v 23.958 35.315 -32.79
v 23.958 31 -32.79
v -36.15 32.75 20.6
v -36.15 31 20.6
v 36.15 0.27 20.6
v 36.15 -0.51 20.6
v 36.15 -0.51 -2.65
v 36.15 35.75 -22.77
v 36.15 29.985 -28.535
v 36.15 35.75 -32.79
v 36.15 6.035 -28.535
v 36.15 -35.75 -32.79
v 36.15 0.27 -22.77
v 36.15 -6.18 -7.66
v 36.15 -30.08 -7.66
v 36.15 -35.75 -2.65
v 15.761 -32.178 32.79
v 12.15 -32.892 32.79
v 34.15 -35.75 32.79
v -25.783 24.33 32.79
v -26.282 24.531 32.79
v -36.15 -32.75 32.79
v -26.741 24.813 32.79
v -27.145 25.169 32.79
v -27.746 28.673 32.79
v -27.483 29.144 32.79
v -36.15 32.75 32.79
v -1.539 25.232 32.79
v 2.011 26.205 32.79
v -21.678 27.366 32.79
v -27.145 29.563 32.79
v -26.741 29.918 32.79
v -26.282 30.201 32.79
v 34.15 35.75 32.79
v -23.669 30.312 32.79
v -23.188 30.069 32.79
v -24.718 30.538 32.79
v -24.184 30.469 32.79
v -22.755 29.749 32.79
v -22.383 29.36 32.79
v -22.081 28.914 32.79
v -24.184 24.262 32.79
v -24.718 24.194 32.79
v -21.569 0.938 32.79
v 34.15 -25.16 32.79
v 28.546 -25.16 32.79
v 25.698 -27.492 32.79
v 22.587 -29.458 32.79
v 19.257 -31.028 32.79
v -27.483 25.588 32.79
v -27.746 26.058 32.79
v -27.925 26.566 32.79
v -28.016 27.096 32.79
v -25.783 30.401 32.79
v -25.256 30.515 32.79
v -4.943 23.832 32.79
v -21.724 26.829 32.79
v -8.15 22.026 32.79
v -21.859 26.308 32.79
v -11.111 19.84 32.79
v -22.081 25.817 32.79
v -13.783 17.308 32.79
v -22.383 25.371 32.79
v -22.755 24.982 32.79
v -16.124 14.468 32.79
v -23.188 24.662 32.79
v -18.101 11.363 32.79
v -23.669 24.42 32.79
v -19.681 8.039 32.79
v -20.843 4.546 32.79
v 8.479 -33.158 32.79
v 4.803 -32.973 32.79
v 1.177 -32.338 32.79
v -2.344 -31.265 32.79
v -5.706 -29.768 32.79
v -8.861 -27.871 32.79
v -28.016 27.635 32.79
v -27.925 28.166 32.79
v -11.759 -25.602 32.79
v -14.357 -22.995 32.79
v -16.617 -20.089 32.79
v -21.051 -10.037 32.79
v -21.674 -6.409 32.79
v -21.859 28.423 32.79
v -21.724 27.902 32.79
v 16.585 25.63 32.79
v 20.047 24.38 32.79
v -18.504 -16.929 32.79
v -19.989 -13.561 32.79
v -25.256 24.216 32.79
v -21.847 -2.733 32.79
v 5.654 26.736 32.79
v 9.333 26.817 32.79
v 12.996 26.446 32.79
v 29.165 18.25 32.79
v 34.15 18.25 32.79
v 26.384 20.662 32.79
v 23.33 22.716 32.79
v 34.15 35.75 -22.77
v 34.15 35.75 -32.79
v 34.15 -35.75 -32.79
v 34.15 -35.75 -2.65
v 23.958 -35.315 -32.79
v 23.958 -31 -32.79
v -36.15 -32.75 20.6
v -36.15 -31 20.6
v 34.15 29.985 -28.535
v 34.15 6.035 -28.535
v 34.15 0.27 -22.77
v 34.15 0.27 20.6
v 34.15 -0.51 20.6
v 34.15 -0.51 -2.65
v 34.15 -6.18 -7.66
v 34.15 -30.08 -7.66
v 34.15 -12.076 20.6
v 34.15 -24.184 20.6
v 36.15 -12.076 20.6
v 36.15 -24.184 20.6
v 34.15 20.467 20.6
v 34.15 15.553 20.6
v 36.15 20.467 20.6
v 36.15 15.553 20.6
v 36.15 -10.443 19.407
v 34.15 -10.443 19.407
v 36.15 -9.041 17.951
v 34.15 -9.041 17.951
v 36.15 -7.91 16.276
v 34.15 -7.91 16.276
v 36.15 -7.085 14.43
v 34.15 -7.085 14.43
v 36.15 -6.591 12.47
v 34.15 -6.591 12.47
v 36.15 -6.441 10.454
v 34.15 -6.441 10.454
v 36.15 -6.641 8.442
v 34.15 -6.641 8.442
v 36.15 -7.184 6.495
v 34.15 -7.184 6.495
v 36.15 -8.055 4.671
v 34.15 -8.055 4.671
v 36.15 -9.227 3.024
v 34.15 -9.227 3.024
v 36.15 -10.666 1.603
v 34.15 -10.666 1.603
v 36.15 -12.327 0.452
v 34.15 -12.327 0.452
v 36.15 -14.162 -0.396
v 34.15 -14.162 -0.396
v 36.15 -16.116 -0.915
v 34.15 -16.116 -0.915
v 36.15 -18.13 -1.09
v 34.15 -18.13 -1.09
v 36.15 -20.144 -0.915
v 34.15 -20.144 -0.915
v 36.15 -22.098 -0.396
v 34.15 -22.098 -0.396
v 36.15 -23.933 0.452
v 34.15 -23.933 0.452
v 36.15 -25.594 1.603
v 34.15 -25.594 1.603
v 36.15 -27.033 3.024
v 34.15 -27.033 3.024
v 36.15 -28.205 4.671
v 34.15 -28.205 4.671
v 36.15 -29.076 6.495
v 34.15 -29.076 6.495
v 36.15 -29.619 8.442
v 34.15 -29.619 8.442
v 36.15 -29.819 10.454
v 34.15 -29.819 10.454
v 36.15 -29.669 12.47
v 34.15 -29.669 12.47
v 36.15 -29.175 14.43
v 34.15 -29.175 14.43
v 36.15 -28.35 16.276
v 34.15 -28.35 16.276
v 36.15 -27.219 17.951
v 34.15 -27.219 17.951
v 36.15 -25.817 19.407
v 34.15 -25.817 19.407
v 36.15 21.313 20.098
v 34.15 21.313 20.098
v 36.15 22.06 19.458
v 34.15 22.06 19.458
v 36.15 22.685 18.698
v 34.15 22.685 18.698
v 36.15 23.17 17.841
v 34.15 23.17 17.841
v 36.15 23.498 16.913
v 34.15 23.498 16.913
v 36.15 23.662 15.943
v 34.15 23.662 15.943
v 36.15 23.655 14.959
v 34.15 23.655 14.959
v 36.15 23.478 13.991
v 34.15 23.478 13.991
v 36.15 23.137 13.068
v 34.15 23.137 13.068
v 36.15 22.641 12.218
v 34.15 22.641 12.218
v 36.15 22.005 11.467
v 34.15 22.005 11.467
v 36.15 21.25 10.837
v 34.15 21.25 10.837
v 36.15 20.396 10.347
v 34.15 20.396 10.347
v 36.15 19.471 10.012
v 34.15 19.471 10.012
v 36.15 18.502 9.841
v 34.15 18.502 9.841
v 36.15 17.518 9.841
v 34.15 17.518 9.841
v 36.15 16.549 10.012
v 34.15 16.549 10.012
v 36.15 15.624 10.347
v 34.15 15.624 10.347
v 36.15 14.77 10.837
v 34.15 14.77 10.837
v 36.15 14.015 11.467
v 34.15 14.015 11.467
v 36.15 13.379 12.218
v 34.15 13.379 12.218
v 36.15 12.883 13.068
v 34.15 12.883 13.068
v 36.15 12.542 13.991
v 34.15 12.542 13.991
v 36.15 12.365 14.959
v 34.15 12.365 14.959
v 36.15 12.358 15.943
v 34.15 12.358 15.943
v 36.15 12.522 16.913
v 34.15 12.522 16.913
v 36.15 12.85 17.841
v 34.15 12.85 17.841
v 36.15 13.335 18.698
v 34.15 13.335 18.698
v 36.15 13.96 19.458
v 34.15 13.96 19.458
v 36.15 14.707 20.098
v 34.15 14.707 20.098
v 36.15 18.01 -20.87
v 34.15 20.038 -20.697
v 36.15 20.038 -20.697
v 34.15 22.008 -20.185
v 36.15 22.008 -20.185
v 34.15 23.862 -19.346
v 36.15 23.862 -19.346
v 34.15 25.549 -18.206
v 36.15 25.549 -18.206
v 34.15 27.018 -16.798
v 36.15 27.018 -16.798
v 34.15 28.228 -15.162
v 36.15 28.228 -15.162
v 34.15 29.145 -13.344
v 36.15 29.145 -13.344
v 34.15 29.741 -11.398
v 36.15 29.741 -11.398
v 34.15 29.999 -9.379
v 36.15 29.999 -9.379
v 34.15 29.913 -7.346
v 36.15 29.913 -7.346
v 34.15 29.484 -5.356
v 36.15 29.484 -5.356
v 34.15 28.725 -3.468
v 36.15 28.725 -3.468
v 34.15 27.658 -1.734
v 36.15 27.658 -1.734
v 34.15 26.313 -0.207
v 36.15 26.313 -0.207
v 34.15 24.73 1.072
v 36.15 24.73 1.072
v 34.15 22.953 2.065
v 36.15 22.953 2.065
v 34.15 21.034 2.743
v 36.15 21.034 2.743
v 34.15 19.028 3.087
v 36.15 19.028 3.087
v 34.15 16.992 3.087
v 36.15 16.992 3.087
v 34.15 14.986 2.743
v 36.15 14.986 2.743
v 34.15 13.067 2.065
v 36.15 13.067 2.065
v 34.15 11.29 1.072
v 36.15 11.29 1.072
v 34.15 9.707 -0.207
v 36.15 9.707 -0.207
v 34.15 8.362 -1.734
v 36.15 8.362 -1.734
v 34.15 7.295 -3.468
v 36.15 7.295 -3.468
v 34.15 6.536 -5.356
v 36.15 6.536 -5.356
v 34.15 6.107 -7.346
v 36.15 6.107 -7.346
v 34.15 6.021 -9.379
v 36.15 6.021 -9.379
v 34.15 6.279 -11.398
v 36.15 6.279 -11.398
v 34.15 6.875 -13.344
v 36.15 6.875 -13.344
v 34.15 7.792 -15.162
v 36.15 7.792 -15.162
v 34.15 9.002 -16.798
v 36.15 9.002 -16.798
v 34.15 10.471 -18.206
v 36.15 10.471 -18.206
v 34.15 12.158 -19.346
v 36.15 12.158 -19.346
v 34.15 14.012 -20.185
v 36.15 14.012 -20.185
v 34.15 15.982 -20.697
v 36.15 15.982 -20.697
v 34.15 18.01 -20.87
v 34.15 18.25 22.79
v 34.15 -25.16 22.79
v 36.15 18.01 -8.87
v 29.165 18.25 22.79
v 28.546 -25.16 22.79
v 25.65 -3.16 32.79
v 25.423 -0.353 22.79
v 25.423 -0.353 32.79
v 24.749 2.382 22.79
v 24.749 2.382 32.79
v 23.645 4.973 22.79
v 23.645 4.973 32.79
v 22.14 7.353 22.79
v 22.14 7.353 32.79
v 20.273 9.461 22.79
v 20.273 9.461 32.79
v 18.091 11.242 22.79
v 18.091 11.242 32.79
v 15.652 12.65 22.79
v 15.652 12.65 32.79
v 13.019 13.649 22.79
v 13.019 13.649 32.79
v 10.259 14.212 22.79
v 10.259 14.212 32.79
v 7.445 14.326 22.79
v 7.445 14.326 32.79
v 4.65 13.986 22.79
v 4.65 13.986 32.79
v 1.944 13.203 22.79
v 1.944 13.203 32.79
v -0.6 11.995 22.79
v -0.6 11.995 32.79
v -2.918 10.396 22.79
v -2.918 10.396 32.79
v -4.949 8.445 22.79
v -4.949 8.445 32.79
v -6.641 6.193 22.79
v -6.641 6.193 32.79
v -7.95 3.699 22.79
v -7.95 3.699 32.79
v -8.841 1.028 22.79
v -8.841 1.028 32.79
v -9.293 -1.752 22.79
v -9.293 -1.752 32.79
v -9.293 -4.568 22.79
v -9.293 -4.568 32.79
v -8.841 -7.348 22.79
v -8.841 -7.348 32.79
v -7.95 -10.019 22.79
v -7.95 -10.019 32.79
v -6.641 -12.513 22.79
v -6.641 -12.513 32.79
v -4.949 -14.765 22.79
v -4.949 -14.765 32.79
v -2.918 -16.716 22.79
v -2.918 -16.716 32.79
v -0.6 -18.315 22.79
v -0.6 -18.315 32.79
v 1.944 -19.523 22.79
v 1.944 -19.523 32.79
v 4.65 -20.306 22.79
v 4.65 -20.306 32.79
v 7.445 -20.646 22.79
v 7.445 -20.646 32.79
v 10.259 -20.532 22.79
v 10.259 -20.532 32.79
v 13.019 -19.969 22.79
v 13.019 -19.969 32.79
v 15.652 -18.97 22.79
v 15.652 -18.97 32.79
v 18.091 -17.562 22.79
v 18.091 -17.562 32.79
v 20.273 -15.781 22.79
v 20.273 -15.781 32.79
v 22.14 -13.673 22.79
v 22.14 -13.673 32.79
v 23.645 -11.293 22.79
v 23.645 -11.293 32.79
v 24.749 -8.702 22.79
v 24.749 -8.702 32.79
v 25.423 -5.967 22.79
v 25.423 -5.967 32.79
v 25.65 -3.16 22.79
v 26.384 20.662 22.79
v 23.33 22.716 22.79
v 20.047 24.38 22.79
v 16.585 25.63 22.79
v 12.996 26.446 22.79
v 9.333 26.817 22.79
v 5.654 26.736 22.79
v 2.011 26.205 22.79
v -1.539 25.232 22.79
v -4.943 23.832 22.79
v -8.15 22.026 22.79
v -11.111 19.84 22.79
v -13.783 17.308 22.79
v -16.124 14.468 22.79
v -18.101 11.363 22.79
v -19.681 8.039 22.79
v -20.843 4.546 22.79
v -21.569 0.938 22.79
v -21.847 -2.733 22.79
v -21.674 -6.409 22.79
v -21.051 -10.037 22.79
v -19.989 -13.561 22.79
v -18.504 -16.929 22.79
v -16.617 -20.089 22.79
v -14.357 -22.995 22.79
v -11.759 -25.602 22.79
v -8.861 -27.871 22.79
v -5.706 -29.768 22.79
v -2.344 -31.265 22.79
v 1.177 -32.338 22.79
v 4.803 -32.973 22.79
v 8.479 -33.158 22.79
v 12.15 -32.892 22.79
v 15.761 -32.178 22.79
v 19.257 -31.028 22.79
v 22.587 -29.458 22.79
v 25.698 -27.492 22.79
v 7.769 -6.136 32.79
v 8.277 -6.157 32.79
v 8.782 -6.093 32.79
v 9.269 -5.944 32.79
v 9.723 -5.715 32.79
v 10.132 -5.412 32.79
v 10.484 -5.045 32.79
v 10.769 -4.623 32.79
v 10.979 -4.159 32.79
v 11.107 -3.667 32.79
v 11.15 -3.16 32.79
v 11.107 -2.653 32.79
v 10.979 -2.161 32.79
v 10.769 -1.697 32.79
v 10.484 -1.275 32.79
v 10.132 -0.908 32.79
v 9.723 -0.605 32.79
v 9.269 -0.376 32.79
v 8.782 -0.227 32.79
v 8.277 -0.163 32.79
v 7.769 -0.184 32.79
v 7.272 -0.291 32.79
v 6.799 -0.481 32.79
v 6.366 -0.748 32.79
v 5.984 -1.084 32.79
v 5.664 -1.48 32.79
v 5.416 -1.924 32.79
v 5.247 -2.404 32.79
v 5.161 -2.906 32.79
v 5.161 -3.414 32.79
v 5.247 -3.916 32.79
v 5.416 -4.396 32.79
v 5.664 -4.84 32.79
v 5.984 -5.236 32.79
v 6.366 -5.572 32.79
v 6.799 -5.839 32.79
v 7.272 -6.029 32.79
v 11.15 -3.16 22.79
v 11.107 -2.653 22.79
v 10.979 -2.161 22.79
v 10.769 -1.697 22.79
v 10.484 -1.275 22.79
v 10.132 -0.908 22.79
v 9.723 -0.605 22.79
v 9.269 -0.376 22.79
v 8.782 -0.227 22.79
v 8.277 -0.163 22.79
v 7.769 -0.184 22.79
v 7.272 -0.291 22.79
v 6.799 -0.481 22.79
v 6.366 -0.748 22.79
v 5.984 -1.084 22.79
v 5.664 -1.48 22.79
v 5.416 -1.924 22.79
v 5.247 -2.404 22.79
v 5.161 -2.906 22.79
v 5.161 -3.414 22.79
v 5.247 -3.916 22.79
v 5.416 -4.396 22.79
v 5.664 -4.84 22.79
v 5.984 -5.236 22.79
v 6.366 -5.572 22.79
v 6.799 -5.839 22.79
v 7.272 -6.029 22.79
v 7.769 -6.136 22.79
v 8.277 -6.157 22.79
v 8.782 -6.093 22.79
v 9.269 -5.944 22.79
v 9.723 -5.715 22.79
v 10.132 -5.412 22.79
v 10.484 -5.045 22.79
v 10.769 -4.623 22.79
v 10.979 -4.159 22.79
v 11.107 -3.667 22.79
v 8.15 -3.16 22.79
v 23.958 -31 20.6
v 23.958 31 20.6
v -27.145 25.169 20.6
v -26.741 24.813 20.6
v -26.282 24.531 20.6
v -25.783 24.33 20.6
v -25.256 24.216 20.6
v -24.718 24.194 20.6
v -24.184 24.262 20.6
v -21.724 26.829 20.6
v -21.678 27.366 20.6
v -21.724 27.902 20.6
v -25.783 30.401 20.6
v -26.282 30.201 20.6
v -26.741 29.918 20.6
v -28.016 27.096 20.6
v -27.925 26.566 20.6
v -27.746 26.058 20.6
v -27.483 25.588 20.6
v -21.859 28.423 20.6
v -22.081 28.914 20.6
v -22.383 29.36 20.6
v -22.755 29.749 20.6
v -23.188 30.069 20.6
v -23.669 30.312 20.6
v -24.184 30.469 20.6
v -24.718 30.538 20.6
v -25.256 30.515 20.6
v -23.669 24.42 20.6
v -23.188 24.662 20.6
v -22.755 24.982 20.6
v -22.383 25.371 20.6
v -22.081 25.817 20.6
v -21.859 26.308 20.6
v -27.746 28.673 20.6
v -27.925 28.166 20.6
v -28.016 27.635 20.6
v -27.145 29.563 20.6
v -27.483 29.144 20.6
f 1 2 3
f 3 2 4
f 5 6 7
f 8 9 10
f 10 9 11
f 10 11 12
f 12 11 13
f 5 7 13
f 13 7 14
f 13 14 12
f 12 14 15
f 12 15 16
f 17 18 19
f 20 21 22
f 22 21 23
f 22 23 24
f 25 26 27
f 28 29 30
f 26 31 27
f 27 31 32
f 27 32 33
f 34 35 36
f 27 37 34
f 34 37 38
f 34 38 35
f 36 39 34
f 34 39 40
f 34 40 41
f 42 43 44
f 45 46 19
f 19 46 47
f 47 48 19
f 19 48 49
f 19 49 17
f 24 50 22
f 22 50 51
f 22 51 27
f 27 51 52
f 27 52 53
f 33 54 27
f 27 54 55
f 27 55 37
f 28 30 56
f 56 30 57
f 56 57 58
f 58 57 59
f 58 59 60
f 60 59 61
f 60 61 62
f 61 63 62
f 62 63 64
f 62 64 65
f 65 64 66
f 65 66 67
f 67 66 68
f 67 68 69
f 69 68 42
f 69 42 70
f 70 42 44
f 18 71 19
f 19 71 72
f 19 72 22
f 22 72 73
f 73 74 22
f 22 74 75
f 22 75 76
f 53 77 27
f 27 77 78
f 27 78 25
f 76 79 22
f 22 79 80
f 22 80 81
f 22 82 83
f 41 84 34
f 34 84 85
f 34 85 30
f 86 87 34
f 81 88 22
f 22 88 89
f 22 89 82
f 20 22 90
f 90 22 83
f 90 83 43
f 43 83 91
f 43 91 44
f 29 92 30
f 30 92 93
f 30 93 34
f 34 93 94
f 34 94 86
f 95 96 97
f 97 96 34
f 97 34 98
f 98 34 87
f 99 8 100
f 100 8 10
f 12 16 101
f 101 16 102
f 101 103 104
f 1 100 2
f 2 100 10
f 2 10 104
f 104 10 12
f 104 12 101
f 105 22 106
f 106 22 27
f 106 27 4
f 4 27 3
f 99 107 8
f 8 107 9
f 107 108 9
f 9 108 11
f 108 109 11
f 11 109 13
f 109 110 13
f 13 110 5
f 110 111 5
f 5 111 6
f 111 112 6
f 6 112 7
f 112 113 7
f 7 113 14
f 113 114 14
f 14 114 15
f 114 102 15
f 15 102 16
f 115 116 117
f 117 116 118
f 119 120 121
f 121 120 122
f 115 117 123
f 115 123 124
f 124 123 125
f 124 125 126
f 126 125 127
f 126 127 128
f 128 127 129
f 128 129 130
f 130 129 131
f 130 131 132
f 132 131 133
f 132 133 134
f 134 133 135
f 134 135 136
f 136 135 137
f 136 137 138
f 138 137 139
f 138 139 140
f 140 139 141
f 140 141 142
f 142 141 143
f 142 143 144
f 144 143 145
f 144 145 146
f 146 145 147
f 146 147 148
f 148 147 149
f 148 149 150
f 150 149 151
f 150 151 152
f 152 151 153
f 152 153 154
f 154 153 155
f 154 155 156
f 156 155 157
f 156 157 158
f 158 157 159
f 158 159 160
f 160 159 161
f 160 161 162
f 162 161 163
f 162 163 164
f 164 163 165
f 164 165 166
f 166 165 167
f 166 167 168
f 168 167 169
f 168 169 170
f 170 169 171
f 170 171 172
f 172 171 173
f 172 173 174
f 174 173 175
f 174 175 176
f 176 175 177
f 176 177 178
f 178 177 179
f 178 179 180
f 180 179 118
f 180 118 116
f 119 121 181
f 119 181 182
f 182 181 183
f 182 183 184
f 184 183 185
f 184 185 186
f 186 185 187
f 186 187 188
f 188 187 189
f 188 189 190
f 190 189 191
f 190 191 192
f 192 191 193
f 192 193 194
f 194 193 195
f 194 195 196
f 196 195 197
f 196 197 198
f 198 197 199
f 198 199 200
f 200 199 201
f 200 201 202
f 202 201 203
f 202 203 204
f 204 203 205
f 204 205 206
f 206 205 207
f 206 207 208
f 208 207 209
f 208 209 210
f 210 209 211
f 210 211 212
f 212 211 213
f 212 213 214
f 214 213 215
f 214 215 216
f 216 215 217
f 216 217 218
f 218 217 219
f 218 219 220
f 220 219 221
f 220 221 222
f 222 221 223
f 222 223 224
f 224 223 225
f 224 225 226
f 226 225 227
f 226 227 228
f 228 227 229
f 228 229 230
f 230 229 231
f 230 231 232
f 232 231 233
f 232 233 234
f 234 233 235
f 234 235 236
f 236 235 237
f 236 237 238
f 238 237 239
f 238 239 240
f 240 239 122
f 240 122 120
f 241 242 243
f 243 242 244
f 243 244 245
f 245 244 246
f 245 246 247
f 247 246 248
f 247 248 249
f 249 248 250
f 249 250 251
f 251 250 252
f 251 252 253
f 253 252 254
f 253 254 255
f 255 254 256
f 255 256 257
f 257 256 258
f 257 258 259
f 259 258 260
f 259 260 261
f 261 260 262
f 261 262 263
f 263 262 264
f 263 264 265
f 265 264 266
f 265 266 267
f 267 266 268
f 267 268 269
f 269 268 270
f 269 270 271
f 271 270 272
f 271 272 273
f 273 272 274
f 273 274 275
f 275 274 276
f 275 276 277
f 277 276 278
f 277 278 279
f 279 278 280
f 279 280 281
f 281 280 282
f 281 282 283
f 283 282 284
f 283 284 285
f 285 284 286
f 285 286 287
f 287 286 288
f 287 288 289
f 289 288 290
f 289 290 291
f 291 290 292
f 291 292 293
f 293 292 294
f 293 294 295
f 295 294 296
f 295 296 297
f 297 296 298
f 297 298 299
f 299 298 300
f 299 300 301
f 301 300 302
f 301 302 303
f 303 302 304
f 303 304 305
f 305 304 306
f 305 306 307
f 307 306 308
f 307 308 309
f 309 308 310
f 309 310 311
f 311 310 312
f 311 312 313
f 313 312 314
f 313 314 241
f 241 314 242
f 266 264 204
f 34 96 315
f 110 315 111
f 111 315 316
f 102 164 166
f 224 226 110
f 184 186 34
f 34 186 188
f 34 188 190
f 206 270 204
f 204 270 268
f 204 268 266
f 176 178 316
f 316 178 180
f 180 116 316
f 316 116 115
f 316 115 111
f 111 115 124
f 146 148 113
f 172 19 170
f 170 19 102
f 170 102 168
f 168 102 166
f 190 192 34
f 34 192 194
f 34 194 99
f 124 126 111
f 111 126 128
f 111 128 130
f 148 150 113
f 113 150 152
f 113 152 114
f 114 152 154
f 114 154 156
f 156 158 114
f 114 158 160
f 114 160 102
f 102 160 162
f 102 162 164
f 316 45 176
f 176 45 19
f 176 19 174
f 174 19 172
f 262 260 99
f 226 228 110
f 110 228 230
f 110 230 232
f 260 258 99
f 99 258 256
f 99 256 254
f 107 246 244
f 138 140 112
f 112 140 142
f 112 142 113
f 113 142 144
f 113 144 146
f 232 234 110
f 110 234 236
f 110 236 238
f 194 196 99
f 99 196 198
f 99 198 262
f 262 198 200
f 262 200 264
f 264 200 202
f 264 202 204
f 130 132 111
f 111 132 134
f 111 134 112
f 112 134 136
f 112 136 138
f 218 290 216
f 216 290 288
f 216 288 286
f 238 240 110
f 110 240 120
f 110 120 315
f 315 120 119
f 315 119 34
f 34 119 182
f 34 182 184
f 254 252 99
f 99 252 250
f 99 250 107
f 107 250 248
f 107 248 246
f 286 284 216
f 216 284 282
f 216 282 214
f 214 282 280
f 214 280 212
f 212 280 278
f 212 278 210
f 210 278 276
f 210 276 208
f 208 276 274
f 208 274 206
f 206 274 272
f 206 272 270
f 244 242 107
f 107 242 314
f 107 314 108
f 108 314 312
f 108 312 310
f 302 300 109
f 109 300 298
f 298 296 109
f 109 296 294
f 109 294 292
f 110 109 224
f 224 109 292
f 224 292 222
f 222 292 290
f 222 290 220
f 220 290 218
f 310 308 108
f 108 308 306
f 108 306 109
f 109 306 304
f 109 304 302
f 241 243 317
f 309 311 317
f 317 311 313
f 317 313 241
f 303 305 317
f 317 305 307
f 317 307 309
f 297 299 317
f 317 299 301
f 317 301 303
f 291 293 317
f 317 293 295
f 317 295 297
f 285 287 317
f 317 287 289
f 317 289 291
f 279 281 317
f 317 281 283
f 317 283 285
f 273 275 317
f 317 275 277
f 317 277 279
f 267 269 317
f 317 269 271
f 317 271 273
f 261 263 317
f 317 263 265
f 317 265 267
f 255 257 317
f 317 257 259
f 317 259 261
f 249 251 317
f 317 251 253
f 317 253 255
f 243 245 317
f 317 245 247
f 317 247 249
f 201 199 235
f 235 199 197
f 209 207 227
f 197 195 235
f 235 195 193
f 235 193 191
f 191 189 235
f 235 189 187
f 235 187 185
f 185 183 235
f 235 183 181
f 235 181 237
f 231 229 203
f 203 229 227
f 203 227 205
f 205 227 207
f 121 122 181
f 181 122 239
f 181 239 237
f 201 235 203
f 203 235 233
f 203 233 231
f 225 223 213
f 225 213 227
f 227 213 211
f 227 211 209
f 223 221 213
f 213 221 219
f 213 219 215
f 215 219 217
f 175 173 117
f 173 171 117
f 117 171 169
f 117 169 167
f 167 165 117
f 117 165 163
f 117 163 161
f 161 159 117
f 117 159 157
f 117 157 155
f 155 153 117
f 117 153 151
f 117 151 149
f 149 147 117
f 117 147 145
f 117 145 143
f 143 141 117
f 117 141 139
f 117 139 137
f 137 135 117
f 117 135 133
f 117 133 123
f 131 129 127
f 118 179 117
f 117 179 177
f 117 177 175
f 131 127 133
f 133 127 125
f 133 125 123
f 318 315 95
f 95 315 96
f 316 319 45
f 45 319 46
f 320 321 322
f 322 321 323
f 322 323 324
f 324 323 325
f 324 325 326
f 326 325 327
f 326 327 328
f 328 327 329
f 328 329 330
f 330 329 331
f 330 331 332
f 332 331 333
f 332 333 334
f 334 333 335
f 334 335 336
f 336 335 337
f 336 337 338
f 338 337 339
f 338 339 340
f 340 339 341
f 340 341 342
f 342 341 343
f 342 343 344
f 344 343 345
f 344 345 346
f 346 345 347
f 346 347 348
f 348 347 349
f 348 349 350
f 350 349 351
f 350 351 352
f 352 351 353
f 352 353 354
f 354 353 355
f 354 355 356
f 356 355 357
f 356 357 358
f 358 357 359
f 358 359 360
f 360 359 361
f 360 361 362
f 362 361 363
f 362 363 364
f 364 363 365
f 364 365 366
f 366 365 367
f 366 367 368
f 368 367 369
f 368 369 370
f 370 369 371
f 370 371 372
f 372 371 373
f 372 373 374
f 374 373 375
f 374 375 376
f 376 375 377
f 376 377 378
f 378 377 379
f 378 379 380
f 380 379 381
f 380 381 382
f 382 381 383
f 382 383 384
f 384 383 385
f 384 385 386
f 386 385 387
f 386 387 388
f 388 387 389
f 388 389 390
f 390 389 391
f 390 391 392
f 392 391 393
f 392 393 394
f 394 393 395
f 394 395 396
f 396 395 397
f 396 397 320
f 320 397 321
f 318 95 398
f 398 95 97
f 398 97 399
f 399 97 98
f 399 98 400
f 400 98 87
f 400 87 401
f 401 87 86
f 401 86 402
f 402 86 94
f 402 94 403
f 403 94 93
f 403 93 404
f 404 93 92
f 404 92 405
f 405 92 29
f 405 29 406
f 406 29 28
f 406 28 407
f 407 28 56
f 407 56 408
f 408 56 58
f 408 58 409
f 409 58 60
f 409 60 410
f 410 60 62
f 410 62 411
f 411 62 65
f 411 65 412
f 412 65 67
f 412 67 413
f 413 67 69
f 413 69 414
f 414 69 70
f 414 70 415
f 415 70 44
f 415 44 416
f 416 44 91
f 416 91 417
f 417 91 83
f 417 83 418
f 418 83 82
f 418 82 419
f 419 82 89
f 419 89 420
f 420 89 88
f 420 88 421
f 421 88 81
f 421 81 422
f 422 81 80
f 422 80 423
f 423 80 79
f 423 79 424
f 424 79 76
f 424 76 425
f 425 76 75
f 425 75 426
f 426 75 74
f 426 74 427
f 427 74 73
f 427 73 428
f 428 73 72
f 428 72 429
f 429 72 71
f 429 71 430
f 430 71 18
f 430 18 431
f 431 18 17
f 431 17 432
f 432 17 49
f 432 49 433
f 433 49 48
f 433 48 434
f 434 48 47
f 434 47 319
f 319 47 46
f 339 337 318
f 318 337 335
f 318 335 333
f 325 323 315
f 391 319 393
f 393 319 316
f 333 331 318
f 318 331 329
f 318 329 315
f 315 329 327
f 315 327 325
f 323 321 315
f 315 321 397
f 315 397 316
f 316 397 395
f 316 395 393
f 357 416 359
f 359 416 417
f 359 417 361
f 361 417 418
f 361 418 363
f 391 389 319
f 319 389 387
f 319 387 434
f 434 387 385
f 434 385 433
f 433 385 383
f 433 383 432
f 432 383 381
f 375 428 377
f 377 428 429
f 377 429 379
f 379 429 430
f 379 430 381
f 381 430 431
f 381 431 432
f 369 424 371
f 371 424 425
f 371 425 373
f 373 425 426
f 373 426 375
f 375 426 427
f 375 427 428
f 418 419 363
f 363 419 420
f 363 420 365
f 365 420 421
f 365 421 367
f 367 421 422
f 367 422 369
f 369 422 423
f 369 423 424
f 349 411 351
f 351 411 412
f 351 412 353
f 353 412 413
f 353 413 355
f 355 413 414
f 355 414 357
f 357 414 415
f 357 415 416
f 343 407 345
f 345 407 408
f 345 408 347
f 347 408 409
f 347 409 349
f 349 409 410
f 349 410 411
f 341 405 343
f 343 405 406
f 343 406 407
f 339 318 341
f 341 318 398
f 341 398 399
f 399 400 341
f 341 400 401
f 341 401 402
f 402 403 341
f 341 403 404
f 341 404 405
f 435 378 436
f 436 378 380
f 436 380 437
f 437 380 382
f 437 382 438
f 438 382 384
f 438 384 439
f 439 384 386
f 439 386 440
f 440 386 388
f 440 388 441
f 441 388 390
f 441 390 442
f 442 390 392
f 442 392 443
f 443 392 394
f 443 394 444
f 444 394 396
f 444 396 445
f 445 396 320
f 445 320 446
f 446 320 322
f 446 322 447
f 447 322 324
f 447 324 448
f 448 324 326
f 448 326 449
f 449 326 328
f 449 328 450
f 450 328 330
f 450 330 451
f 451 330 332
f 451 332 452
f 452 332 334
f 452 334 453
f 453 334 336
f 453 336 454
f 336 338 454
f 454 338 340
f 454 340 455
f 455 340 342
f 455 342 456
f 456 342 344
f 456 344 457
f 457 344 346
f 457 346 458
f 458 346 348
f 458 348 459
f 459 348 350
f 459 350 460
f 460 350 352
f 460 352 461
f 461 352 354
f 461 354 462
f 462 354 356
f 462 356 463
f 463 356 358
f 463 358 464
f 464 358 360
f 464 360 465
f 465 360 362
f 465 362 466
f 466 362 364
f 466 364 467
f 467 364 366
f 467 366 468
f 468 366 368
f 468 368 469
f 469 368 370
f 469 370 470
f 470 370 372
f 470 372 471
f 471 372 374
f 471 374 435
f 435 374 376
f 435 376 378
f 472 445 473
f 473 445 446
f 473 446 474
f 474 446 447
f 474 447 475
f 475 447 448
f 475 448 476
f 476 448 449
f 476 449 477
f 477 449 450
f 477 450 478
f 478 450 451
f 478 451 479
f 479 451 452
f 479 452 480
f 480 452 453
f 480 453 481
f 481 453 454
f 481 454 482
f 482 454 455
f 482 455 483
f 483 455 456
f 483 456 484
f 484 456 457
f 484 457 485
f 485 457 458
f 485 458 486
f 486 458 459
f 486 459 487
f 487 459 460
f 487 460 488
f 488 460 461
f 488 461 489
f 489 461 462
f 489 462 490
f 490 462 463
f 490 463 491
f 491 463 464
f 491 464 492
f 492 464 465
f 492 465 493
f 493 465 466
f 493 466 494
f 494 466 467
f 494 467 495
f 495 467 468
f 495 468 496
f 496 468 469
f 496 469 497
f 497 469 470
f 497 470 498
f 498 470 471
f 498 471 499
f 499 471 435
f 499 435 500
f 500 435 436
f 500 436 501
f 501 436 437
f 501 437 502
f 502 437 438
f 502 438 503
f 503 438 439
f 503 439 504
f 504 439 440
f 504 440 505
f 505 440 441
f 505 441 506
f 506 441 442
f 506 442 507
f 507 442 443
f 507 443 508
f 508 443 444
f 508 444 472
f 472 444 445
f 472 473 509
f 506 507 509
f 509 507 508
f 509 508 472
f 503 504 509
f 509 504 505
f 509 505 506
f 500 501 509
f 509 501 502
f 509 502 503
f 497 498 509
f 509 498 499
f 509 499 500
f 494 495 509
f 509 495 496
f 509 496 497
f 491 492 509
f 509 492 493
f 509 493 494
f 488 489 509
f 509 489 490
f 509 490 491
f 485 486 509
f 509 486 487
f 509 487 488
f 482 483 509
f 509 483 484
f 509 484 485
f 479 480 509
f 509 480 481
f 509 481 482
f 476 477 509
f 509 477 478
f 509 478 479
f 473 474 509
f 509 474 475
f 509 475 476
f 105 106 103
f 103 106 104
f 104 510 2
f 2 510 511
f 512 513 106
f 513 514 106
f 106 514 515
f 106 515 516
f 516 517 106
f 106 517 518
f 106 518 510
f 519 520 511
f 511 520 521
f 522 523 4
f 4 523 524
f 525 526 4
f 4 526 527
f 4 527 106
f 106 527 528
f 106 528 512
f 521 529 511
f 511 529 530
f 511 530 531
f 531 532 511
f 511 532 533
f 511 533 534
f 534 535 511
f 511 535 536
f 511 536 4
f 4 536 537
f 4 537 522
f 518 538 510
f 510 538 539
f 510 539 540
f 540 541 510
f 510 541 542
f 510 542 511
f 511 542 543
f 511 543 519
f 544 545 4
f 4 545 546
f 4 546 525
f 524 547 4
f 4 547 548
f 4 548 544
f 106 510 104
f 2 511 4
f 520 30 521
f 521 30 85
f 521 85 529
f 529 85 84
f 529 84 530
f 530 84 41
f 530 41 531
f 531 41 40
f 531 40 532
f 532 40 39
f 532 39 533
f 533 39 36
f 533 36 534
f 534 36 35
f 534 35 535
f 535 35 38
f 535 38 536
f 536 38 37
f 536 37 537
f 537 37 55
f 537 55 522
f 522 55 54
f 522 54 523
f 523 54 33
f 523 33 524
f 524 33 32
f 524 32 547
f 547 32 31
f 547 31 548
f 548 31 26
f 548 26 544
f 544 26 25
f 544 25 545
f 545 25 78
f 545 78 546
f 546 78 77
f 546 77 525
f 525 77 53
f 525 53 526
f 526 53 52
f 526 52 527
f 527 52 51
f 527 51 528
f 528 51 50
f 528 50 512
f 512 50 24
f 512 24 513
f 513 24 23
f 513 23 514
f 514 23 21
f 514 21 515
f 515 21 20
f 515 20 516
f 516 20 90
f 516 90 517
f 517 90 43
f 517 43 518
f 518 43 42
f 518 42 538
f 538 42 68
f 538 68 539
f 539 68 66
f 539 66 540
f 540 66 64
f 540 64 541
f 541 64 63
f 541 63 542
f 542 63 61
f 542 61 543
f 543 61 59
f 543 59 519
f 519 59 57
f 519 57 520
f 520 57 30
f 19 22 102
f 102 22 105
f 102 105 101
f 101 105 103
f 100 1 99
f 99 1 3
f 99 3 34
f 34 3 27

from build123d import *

# Parameters (mm, degrees)
CROQUIS1_W                 = 72.3
CROQUIS1_H                 = 65.58
SALIENTE_EXTRUIR1_DEPTH    = 35.75
CROQUIS2_R                 = 12
CORTAR_EXTRUIR1_DEPTH      = 2
CROQUIS3_R                 = 17.5
CROQUIS3_R_2               = 3
CORTAR_EXTRUIR2_DEPTH      = 10
CORTAR_EXTRUIR3_DEPTH      = 61.49850494
CORTAR_EXTRUIR3_DEPTH_BACK = 61.49850494
CORTAR_EXTRUIR4_DEPTH      = 31
CROQUIS3_3_R               = 3.175
CORTAR_EXTRUIR5_DEPTH      = 83.979644492
CORTAR_EXTRUIR6_DEPTH      = 83.979644492


with BuildPart() as part:
    # Croquis1 → Saliente-Extruir1 (new, symmetric)
    with BuildSketch(Plane(origin=(0, 0, 0), x_dir=(1, 0, 0), z_dir=(0, 1, 0))):
        Rectangle(CROQUIS1_W, CROQUIS1_H)
    extrude(amount=SALIENTE_EXTRUIR1_DEPTH, both=True)

    # Croquis2 → Cortar-Extruir1 (cut)
    with BuildSketch(Plane(origin=(36.15, 0, 0), x_dir=(0, 0, -1), z_dir=(1, 0, 0))):
        Polygon((-20.6, -0.51), (-20.6, 0.27), (22.77, 0.27), (28.535, 6.035), (28.535, 29.985), (22.77, 35.75), (-32.79, 35.75), (-32.79, -35.75), (2.65, -35.75), (7.66, -30.08), (7.66, -6.18), (2.65, -0.51), align=None)
        with BuildLine():
            Line((-20.6, 15.553009972), (-20.6, 20.466990028))
            ThreePointArc((-20.6, 20.466990028), (-9.82, 18.01), (-20.6, 15.553009972))
        make_face(mode=Mode.SUBTRACT)
        with BuildLine():
            Line((-20.6, -24.184428132), (-20.6, -12.075571868))
            ThreePointArc((-20.6, -12.075571868), (1.09, -18.13), (-20.6, -24.184428132))
        make_face(mode=Mode.SUBTRACT)
        with Locations((8.87, 18.01)):
            Circle(CROQUIS2_R, mode=Mode.SUBTRACT)
    extrude(amount=-CORTAR_EXTRUIR1_DEPTH, mode=Mode.SUBTRACT)

    # Croquis3 → Cortar-Extruir2 (cut)
    # profile 1 of 2: a face of its own
    with BuildSketch(Plane.XY.offset(32.79)):
        with BuildLine():
            Line((34.15, -25.16), (34.15, 18.25))
            Line((34.15, 18.25), (29.164563997, 18.25))
            ThreePointArc((29.164563997, 18.25), (-21.846955575, -2.732617016), (28.546078054, -25.16))
            Line((28.546078054, -25.16), (34.15, -25.16))
        make_face()
        with Locations((8.15, -3.16)):
            Circle(CROQUIS3_R, mode=Mode.SUBTRACT)
    # profile 2 of 2: a face of its own
    with BuildSketch(Plane.XY.offset(32.79)):
        with Locations((8.15, -3.16)):
            Circle(CROQUIS3_R_2)
    extrude(amount=-CORTAR_EXTRUIR2_DEPTH, mode=Mode.SUBTRACT)

    # Croquis4 → Cortar-Extruir3 (cut, two sides: drawn at the far end of the back side and taken through both)
    with BuildSketch(Plane(origin=(0, 0, 0), x_dir=(1, 0, 0), z_dir=(0, 1, 0)).offset(-CORTAR_EXTRUIR3_DEPTH_BACK)):
        Polygon((-36.15, 32.79), (23.958, 32.79), (-36.15, -20.6), align=None)
    extrude(amount=CORTAR_EXTRUIR3_DEPTH + CORTAR_EXTRUIR3_DEPTH_BACK, mode=Mode.SUBTRACT)

    # Croquis5 → Cortar-Extruir4 (cut, symmetric)
    with BuildSketch(Plane(origin=(0, 0, 0), x_dir=(1, 0, 0), z_dir=(0, 1, 0))):
        Polygon((23.958, 32.79), (23.958, -20.6), (-36.15, -20.6), align=None)
    extrude(amount=CORTAR_EXTRUIR4_DEPTH, both=True, mode=Mode.SUBTRACT)

    # Croquis3<3> → Cortar-Extruir5 (cut, through all)
    with BuildSketch(Plane.XY.offset(32.79)):
        with Locations((-24.852904541, 27.365641017)):
            Circle(CROQUIS3_3_R)
    extrude(amount=-CORTAR_EXTRUIR5_DEPTH, mode=Mode.SUBTRACT)

    # Croquis6 → Cortar-Extruir6 (cut, through all)
    with BuildSketch(Plane.XY.offset(32.79)):
        Polygon((-36.15, 32.75), (-36.15, 35.75), (34.15, 35.75), align=None)
        Polygon((-36.15, -32.75), (-36.15, -35.75), (34.15, -35.75), align=None)
    extrude(amount=-CORTAR_EXTRUIR6_DEPTH, mode=Mode.SUBTRACT)


solid = part.part
